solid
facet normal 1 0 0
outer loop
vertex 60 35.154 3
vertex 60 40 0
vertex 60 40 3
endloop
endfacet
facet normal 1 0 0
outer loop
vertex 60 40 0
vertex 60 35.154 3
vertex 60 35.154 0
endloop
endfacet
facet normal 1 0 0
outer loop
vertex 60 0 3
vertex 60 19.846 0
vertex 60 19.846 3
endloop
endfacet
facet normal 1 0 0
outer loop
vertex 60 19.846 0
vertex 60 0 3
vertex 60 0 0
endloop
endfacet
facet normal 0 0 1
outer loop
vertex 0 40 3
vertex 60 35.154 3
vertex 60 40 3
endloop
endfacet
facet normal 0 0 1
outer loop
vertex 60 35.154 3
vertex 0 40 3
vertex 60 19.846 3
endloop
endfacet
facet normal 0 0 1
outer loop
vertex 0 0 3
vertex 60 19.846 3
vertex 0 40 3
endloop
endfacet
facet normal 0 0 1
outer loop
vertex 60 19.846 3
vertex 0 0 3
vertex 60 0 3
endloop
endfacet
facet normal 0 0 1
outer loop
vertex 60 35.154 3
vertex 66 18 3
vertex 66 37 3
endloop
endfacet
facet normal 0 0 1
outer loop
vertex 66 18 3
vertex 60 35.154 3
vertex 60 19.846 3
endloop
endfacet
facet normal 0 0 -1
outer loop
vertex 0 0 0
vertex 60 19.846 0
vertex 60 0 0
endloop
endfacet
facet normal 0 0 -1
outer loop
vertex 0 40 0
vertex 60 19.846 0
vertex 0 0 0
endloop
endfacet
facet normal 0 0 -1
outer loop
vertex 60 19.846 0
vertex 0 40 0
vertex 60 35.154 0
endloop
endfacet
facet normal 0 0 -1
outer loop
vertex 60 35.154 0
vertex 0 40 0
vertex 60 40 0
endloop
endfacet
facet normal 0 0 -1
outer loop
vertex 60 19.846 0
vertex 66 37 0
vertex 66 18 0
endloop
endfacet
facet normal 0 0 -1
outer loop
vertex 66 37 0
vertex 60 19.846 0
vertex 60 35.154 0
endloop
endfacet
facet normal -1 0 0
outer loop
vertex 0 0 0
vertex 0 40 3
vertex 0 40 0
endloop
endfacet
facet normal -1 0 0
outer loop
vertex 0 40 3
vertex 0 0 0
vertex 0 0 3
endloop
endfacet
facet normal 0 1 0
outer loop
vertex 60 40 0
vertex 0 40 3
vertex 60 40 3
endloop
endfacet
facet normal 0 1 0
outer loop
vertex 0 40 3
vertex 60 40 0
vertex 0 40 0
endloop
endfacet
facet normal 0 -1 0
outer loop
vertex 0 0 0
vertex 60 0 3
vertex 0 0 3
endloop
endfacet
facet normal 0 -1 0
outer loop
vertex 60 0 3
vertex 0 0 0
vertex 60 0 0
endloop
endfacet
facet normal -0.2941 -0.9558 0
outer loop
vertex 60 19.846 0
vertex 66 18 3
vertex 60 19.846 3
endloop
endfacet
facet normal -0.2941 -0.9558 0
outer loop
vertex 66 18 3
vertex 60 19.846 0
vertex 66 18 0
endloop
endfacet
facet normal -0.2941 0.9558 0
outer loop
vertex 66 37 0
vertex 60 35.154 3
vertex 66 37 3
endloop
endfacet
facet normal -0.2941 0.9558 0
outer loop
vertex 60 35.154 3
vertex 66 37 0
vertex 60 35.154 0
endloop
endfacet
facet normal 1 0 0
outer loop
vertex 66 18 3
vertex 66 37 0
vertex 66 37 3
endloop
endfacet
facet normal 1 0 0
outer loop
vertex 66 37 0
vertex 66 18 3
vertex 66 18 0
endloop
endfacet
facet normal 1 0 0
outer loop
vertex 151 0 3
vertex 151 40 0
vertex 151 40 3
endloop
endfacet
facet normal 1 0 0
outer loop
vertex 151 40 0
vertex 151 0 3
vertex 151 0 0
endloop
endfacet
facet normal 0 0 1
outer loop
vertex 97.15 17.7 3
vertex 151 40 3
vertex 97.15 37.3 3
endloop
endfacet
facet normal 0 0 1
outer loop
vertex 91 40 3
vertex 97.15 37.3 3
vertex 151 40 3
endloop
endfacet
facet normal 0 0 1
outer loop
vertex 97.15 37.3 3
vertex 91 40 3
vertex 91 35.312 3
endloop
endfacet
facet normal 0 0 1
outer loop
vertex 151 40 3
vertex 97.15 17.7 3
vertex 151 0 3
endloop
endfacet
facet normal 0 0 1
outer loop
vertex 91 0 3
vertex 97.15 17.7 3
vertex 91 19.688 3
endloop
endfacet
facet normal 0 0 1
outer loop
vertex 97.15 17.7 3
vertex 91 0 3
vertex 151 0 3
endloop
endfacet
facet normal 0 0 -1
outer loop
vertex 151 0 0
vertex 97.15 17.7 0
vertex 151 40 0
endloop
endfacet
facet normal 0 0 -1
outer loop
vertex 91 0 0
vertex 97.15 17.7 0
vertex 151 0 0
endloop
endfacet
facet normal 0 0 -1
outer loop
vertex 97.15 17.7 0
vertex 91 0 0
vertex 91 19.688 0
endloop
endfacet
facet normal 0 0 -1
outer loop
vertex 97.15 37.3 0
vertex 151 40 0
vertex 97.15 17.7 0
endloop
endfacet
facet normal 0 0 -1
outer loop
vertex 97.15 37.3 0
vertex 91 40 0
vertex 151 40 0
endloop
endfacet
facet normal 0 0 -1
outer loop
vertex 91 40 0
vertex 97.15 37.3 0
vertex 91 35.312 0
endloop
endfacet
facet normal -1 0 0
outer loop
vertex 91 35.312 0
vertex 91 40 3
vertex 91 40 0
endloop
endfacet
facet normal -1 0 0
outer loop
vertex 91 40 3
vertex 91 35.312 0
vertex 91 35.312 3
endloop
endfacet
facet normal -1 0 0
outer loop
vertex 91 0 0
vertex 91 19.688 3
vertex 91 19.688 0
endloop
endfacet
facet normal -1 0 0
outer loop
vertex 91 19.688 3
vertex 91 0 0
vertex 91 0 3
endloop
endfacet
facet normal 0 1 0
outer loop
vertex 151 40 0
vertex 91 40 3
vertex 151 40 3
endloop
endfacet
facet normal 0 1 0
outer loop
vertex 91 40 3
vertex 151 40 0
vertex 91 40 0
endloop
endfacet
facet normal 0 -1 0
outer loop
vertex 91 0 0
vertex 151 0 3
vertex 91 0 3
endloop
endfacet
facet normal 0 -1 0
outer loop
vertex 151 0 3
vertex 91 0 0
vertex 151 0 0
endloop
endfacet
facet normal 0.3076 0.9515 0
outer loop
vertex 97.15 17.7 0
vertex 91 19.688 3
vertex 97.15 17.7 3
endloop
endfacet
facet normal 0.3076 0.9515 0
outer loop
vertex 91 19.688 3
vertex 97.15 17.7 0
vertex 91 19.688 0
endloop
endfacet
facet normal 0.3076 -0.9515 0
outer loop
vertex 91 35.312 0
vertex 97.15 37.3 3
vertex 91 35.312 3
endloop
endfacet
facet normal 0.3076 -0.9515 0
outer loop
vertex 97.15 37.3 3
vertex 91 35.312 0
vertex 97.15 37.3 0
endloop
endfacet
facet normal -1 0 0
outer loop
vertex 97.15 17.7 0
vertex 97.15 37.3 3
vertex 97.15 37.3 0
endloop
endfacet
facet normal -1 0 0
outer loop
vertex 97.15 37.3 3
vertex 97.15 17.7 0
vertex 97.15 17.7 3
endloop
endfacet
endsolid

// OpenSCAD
// file: model-forge/joint.scad
// model-forge/joint.scad — dovetail finger-joint tabs for snap-fit panel
// segmentation. One segment gets protruding tabs (union onto its edge),
// the matching segment gets slightly-larger slots (difference cut into
// its edge) so the two press together with a light interference/snap fit.
//
// Both modules produce a 2D profile running along the X axis, centered
// on the boundary line (y=0), for a boundary of the given edge_length.
// The caller extrudes and positions/rotates it onto the actual seam
// (see back-wall-joint-test.scad for a worked example on a vertical seam).
//
//   use <model-forge/joint.scad>
//   linear_extrude(height=thickness)
//     dovetail_tabs_2d(edge_length=60, tab_width=15, tab_depth=6, taper=2);
//   // on the MATING piece, subtract:
//   linear_extrude(height=thickness+2)
//     dovetail_tabs_2d(edge_length=60, tab_width=15, tab_depth=6, taper=2, clearance=0.15);

module dovetail_tab_2d(tab_width, tab_depth, taper, base_overlap = 0.5) {
  // Trapezoid: narrow at the base, wider at the tip (y=tab_depth) — the
  // taper is what makes it a dovetail (can't pull straight out sideways
  // once the mating slot is filled) and gives the snap/interference feel
  // as it's pressed in along Y. The base extends base_overlap PAST y=0
  // (the seam line) on purpose: a cut/union placed exactly flush with a
  // piece's boundary face (zero overlap) is a classic OpenSCAD/CGAL
  // gotcha — coincident faces produce degenerate, non-manifold results
  // (confirmed here: without the overlap this rendered as a distorted
  // sliver instead of a clean notch). The overlap guarantees real overlap
  // for both the union (tab) and difference (slot) uses.
  polygon(points = [
    [-tab_width / 2, -base_overlap],
    [tab_width / 2, -base_overlap],
    [tab_width / 2 + taper, tab_depth],
    [-tab_width / 2 - taper, tab_depth],
  ]);
}

/**
 * A row of dovetail tabs spanning edge_length, evenly spaced and centered,
 * each tab_width wide with tab_depth of protrusion and the given taper.
 * Pass clearance > 0 (e.g. 0.15-0.2mm) when using this as a SLOT cutout on
 * the mating piece, so the tab has just enough room to press in.
 */
module dovetail_tabs_2d(edge_length, tab_width, tab_depth, taper, clearance = 0) {
  // Growing the slot via offset(delta=clearance) produced a disconnected
  // sliver fragment at the corner (confirmed with --render: 3 volumes
  // instead of 2, a known OpenSCAD quirk with delta-mode offset on a
  // trapezoid). Scaling the tab's own dimensions directly instead avoids
  // offset() entirely and renders as the expected 2 volumes.
  pitch = tab_width * 2;
  n = max(1, floor(edge_length / pitch));
  row_width = n * pitch - tab_width;
  start_x = -row_width / 2;
  for (i = [0 : n - 1]) {
    translate([start_x + i * pitch, 0])
      dovetail_tab_2d(tab_width + 2 * clearance, tab_depth + clearance, taper + clearance);
  }
}
// main file
// Snap-fit joint proof piece for the back wall (13.25 x 17.5in — exceeds
// the X1C bed on BOTH axes, so the real back wall needs a 2x2 segment
// grid with joints on both internal seams). Per the plan: print this
// small test first, confirm the snap fit, THEN build the full segmented
// wall using the same tab/slot numbers.
//
// Two independent stubs, meant to print separately and be pressed
// together by hand — not pre-assembled in this file.
use <model-forge/joint.scad>

thickness = 3;     // matches the other flat panels (oven-insert, fridge-rack)
tab_width = 15;    // mm, each dovetail tab's base width
tab_depth = 6;     // mm, how far the tab protrudes / the slot recesses
taper = 2;         // mm, dovetail flare — bigger = more mechanical lock, harder to press in
clearance = 0.15;  // mm, slot oversize for the snap/interference fit — tune after a real test-fit
stub_w = 60;
stub_h = 40;

// Stub A — tabs protruding from its right edge
union() {
  cube([stub_w, stub_h, thickness]);
  translate([stub_w, stub_h / 2, 0])
    rotate([0, 0, -90])
      linear_extrude(height = thickness)
        dovetail_tabs_2d(edge_length = stub_h, tab_width = tab_width, tab_depth = tab_depth, taper = taper);
}

// Stub B — matching slots cut into its left edge. Offset away from A so
// they print as two clearly separate parts on the bed.
translate([stub_w + tab_depth + 25, 0, 0])
  difference() {
    cube([stub_w, stub_h, thickness]);
    translate([0, stub_h / 2, -1])
      rotate([0, 0, -90])
        linear_extrude(height = thickness + 2)
          dovetail_tabs_2d(edge_length = stub_h, tab_width = tab_width, tab_depth = tab_depth, taper = taper, clearance = clearance);
  }
